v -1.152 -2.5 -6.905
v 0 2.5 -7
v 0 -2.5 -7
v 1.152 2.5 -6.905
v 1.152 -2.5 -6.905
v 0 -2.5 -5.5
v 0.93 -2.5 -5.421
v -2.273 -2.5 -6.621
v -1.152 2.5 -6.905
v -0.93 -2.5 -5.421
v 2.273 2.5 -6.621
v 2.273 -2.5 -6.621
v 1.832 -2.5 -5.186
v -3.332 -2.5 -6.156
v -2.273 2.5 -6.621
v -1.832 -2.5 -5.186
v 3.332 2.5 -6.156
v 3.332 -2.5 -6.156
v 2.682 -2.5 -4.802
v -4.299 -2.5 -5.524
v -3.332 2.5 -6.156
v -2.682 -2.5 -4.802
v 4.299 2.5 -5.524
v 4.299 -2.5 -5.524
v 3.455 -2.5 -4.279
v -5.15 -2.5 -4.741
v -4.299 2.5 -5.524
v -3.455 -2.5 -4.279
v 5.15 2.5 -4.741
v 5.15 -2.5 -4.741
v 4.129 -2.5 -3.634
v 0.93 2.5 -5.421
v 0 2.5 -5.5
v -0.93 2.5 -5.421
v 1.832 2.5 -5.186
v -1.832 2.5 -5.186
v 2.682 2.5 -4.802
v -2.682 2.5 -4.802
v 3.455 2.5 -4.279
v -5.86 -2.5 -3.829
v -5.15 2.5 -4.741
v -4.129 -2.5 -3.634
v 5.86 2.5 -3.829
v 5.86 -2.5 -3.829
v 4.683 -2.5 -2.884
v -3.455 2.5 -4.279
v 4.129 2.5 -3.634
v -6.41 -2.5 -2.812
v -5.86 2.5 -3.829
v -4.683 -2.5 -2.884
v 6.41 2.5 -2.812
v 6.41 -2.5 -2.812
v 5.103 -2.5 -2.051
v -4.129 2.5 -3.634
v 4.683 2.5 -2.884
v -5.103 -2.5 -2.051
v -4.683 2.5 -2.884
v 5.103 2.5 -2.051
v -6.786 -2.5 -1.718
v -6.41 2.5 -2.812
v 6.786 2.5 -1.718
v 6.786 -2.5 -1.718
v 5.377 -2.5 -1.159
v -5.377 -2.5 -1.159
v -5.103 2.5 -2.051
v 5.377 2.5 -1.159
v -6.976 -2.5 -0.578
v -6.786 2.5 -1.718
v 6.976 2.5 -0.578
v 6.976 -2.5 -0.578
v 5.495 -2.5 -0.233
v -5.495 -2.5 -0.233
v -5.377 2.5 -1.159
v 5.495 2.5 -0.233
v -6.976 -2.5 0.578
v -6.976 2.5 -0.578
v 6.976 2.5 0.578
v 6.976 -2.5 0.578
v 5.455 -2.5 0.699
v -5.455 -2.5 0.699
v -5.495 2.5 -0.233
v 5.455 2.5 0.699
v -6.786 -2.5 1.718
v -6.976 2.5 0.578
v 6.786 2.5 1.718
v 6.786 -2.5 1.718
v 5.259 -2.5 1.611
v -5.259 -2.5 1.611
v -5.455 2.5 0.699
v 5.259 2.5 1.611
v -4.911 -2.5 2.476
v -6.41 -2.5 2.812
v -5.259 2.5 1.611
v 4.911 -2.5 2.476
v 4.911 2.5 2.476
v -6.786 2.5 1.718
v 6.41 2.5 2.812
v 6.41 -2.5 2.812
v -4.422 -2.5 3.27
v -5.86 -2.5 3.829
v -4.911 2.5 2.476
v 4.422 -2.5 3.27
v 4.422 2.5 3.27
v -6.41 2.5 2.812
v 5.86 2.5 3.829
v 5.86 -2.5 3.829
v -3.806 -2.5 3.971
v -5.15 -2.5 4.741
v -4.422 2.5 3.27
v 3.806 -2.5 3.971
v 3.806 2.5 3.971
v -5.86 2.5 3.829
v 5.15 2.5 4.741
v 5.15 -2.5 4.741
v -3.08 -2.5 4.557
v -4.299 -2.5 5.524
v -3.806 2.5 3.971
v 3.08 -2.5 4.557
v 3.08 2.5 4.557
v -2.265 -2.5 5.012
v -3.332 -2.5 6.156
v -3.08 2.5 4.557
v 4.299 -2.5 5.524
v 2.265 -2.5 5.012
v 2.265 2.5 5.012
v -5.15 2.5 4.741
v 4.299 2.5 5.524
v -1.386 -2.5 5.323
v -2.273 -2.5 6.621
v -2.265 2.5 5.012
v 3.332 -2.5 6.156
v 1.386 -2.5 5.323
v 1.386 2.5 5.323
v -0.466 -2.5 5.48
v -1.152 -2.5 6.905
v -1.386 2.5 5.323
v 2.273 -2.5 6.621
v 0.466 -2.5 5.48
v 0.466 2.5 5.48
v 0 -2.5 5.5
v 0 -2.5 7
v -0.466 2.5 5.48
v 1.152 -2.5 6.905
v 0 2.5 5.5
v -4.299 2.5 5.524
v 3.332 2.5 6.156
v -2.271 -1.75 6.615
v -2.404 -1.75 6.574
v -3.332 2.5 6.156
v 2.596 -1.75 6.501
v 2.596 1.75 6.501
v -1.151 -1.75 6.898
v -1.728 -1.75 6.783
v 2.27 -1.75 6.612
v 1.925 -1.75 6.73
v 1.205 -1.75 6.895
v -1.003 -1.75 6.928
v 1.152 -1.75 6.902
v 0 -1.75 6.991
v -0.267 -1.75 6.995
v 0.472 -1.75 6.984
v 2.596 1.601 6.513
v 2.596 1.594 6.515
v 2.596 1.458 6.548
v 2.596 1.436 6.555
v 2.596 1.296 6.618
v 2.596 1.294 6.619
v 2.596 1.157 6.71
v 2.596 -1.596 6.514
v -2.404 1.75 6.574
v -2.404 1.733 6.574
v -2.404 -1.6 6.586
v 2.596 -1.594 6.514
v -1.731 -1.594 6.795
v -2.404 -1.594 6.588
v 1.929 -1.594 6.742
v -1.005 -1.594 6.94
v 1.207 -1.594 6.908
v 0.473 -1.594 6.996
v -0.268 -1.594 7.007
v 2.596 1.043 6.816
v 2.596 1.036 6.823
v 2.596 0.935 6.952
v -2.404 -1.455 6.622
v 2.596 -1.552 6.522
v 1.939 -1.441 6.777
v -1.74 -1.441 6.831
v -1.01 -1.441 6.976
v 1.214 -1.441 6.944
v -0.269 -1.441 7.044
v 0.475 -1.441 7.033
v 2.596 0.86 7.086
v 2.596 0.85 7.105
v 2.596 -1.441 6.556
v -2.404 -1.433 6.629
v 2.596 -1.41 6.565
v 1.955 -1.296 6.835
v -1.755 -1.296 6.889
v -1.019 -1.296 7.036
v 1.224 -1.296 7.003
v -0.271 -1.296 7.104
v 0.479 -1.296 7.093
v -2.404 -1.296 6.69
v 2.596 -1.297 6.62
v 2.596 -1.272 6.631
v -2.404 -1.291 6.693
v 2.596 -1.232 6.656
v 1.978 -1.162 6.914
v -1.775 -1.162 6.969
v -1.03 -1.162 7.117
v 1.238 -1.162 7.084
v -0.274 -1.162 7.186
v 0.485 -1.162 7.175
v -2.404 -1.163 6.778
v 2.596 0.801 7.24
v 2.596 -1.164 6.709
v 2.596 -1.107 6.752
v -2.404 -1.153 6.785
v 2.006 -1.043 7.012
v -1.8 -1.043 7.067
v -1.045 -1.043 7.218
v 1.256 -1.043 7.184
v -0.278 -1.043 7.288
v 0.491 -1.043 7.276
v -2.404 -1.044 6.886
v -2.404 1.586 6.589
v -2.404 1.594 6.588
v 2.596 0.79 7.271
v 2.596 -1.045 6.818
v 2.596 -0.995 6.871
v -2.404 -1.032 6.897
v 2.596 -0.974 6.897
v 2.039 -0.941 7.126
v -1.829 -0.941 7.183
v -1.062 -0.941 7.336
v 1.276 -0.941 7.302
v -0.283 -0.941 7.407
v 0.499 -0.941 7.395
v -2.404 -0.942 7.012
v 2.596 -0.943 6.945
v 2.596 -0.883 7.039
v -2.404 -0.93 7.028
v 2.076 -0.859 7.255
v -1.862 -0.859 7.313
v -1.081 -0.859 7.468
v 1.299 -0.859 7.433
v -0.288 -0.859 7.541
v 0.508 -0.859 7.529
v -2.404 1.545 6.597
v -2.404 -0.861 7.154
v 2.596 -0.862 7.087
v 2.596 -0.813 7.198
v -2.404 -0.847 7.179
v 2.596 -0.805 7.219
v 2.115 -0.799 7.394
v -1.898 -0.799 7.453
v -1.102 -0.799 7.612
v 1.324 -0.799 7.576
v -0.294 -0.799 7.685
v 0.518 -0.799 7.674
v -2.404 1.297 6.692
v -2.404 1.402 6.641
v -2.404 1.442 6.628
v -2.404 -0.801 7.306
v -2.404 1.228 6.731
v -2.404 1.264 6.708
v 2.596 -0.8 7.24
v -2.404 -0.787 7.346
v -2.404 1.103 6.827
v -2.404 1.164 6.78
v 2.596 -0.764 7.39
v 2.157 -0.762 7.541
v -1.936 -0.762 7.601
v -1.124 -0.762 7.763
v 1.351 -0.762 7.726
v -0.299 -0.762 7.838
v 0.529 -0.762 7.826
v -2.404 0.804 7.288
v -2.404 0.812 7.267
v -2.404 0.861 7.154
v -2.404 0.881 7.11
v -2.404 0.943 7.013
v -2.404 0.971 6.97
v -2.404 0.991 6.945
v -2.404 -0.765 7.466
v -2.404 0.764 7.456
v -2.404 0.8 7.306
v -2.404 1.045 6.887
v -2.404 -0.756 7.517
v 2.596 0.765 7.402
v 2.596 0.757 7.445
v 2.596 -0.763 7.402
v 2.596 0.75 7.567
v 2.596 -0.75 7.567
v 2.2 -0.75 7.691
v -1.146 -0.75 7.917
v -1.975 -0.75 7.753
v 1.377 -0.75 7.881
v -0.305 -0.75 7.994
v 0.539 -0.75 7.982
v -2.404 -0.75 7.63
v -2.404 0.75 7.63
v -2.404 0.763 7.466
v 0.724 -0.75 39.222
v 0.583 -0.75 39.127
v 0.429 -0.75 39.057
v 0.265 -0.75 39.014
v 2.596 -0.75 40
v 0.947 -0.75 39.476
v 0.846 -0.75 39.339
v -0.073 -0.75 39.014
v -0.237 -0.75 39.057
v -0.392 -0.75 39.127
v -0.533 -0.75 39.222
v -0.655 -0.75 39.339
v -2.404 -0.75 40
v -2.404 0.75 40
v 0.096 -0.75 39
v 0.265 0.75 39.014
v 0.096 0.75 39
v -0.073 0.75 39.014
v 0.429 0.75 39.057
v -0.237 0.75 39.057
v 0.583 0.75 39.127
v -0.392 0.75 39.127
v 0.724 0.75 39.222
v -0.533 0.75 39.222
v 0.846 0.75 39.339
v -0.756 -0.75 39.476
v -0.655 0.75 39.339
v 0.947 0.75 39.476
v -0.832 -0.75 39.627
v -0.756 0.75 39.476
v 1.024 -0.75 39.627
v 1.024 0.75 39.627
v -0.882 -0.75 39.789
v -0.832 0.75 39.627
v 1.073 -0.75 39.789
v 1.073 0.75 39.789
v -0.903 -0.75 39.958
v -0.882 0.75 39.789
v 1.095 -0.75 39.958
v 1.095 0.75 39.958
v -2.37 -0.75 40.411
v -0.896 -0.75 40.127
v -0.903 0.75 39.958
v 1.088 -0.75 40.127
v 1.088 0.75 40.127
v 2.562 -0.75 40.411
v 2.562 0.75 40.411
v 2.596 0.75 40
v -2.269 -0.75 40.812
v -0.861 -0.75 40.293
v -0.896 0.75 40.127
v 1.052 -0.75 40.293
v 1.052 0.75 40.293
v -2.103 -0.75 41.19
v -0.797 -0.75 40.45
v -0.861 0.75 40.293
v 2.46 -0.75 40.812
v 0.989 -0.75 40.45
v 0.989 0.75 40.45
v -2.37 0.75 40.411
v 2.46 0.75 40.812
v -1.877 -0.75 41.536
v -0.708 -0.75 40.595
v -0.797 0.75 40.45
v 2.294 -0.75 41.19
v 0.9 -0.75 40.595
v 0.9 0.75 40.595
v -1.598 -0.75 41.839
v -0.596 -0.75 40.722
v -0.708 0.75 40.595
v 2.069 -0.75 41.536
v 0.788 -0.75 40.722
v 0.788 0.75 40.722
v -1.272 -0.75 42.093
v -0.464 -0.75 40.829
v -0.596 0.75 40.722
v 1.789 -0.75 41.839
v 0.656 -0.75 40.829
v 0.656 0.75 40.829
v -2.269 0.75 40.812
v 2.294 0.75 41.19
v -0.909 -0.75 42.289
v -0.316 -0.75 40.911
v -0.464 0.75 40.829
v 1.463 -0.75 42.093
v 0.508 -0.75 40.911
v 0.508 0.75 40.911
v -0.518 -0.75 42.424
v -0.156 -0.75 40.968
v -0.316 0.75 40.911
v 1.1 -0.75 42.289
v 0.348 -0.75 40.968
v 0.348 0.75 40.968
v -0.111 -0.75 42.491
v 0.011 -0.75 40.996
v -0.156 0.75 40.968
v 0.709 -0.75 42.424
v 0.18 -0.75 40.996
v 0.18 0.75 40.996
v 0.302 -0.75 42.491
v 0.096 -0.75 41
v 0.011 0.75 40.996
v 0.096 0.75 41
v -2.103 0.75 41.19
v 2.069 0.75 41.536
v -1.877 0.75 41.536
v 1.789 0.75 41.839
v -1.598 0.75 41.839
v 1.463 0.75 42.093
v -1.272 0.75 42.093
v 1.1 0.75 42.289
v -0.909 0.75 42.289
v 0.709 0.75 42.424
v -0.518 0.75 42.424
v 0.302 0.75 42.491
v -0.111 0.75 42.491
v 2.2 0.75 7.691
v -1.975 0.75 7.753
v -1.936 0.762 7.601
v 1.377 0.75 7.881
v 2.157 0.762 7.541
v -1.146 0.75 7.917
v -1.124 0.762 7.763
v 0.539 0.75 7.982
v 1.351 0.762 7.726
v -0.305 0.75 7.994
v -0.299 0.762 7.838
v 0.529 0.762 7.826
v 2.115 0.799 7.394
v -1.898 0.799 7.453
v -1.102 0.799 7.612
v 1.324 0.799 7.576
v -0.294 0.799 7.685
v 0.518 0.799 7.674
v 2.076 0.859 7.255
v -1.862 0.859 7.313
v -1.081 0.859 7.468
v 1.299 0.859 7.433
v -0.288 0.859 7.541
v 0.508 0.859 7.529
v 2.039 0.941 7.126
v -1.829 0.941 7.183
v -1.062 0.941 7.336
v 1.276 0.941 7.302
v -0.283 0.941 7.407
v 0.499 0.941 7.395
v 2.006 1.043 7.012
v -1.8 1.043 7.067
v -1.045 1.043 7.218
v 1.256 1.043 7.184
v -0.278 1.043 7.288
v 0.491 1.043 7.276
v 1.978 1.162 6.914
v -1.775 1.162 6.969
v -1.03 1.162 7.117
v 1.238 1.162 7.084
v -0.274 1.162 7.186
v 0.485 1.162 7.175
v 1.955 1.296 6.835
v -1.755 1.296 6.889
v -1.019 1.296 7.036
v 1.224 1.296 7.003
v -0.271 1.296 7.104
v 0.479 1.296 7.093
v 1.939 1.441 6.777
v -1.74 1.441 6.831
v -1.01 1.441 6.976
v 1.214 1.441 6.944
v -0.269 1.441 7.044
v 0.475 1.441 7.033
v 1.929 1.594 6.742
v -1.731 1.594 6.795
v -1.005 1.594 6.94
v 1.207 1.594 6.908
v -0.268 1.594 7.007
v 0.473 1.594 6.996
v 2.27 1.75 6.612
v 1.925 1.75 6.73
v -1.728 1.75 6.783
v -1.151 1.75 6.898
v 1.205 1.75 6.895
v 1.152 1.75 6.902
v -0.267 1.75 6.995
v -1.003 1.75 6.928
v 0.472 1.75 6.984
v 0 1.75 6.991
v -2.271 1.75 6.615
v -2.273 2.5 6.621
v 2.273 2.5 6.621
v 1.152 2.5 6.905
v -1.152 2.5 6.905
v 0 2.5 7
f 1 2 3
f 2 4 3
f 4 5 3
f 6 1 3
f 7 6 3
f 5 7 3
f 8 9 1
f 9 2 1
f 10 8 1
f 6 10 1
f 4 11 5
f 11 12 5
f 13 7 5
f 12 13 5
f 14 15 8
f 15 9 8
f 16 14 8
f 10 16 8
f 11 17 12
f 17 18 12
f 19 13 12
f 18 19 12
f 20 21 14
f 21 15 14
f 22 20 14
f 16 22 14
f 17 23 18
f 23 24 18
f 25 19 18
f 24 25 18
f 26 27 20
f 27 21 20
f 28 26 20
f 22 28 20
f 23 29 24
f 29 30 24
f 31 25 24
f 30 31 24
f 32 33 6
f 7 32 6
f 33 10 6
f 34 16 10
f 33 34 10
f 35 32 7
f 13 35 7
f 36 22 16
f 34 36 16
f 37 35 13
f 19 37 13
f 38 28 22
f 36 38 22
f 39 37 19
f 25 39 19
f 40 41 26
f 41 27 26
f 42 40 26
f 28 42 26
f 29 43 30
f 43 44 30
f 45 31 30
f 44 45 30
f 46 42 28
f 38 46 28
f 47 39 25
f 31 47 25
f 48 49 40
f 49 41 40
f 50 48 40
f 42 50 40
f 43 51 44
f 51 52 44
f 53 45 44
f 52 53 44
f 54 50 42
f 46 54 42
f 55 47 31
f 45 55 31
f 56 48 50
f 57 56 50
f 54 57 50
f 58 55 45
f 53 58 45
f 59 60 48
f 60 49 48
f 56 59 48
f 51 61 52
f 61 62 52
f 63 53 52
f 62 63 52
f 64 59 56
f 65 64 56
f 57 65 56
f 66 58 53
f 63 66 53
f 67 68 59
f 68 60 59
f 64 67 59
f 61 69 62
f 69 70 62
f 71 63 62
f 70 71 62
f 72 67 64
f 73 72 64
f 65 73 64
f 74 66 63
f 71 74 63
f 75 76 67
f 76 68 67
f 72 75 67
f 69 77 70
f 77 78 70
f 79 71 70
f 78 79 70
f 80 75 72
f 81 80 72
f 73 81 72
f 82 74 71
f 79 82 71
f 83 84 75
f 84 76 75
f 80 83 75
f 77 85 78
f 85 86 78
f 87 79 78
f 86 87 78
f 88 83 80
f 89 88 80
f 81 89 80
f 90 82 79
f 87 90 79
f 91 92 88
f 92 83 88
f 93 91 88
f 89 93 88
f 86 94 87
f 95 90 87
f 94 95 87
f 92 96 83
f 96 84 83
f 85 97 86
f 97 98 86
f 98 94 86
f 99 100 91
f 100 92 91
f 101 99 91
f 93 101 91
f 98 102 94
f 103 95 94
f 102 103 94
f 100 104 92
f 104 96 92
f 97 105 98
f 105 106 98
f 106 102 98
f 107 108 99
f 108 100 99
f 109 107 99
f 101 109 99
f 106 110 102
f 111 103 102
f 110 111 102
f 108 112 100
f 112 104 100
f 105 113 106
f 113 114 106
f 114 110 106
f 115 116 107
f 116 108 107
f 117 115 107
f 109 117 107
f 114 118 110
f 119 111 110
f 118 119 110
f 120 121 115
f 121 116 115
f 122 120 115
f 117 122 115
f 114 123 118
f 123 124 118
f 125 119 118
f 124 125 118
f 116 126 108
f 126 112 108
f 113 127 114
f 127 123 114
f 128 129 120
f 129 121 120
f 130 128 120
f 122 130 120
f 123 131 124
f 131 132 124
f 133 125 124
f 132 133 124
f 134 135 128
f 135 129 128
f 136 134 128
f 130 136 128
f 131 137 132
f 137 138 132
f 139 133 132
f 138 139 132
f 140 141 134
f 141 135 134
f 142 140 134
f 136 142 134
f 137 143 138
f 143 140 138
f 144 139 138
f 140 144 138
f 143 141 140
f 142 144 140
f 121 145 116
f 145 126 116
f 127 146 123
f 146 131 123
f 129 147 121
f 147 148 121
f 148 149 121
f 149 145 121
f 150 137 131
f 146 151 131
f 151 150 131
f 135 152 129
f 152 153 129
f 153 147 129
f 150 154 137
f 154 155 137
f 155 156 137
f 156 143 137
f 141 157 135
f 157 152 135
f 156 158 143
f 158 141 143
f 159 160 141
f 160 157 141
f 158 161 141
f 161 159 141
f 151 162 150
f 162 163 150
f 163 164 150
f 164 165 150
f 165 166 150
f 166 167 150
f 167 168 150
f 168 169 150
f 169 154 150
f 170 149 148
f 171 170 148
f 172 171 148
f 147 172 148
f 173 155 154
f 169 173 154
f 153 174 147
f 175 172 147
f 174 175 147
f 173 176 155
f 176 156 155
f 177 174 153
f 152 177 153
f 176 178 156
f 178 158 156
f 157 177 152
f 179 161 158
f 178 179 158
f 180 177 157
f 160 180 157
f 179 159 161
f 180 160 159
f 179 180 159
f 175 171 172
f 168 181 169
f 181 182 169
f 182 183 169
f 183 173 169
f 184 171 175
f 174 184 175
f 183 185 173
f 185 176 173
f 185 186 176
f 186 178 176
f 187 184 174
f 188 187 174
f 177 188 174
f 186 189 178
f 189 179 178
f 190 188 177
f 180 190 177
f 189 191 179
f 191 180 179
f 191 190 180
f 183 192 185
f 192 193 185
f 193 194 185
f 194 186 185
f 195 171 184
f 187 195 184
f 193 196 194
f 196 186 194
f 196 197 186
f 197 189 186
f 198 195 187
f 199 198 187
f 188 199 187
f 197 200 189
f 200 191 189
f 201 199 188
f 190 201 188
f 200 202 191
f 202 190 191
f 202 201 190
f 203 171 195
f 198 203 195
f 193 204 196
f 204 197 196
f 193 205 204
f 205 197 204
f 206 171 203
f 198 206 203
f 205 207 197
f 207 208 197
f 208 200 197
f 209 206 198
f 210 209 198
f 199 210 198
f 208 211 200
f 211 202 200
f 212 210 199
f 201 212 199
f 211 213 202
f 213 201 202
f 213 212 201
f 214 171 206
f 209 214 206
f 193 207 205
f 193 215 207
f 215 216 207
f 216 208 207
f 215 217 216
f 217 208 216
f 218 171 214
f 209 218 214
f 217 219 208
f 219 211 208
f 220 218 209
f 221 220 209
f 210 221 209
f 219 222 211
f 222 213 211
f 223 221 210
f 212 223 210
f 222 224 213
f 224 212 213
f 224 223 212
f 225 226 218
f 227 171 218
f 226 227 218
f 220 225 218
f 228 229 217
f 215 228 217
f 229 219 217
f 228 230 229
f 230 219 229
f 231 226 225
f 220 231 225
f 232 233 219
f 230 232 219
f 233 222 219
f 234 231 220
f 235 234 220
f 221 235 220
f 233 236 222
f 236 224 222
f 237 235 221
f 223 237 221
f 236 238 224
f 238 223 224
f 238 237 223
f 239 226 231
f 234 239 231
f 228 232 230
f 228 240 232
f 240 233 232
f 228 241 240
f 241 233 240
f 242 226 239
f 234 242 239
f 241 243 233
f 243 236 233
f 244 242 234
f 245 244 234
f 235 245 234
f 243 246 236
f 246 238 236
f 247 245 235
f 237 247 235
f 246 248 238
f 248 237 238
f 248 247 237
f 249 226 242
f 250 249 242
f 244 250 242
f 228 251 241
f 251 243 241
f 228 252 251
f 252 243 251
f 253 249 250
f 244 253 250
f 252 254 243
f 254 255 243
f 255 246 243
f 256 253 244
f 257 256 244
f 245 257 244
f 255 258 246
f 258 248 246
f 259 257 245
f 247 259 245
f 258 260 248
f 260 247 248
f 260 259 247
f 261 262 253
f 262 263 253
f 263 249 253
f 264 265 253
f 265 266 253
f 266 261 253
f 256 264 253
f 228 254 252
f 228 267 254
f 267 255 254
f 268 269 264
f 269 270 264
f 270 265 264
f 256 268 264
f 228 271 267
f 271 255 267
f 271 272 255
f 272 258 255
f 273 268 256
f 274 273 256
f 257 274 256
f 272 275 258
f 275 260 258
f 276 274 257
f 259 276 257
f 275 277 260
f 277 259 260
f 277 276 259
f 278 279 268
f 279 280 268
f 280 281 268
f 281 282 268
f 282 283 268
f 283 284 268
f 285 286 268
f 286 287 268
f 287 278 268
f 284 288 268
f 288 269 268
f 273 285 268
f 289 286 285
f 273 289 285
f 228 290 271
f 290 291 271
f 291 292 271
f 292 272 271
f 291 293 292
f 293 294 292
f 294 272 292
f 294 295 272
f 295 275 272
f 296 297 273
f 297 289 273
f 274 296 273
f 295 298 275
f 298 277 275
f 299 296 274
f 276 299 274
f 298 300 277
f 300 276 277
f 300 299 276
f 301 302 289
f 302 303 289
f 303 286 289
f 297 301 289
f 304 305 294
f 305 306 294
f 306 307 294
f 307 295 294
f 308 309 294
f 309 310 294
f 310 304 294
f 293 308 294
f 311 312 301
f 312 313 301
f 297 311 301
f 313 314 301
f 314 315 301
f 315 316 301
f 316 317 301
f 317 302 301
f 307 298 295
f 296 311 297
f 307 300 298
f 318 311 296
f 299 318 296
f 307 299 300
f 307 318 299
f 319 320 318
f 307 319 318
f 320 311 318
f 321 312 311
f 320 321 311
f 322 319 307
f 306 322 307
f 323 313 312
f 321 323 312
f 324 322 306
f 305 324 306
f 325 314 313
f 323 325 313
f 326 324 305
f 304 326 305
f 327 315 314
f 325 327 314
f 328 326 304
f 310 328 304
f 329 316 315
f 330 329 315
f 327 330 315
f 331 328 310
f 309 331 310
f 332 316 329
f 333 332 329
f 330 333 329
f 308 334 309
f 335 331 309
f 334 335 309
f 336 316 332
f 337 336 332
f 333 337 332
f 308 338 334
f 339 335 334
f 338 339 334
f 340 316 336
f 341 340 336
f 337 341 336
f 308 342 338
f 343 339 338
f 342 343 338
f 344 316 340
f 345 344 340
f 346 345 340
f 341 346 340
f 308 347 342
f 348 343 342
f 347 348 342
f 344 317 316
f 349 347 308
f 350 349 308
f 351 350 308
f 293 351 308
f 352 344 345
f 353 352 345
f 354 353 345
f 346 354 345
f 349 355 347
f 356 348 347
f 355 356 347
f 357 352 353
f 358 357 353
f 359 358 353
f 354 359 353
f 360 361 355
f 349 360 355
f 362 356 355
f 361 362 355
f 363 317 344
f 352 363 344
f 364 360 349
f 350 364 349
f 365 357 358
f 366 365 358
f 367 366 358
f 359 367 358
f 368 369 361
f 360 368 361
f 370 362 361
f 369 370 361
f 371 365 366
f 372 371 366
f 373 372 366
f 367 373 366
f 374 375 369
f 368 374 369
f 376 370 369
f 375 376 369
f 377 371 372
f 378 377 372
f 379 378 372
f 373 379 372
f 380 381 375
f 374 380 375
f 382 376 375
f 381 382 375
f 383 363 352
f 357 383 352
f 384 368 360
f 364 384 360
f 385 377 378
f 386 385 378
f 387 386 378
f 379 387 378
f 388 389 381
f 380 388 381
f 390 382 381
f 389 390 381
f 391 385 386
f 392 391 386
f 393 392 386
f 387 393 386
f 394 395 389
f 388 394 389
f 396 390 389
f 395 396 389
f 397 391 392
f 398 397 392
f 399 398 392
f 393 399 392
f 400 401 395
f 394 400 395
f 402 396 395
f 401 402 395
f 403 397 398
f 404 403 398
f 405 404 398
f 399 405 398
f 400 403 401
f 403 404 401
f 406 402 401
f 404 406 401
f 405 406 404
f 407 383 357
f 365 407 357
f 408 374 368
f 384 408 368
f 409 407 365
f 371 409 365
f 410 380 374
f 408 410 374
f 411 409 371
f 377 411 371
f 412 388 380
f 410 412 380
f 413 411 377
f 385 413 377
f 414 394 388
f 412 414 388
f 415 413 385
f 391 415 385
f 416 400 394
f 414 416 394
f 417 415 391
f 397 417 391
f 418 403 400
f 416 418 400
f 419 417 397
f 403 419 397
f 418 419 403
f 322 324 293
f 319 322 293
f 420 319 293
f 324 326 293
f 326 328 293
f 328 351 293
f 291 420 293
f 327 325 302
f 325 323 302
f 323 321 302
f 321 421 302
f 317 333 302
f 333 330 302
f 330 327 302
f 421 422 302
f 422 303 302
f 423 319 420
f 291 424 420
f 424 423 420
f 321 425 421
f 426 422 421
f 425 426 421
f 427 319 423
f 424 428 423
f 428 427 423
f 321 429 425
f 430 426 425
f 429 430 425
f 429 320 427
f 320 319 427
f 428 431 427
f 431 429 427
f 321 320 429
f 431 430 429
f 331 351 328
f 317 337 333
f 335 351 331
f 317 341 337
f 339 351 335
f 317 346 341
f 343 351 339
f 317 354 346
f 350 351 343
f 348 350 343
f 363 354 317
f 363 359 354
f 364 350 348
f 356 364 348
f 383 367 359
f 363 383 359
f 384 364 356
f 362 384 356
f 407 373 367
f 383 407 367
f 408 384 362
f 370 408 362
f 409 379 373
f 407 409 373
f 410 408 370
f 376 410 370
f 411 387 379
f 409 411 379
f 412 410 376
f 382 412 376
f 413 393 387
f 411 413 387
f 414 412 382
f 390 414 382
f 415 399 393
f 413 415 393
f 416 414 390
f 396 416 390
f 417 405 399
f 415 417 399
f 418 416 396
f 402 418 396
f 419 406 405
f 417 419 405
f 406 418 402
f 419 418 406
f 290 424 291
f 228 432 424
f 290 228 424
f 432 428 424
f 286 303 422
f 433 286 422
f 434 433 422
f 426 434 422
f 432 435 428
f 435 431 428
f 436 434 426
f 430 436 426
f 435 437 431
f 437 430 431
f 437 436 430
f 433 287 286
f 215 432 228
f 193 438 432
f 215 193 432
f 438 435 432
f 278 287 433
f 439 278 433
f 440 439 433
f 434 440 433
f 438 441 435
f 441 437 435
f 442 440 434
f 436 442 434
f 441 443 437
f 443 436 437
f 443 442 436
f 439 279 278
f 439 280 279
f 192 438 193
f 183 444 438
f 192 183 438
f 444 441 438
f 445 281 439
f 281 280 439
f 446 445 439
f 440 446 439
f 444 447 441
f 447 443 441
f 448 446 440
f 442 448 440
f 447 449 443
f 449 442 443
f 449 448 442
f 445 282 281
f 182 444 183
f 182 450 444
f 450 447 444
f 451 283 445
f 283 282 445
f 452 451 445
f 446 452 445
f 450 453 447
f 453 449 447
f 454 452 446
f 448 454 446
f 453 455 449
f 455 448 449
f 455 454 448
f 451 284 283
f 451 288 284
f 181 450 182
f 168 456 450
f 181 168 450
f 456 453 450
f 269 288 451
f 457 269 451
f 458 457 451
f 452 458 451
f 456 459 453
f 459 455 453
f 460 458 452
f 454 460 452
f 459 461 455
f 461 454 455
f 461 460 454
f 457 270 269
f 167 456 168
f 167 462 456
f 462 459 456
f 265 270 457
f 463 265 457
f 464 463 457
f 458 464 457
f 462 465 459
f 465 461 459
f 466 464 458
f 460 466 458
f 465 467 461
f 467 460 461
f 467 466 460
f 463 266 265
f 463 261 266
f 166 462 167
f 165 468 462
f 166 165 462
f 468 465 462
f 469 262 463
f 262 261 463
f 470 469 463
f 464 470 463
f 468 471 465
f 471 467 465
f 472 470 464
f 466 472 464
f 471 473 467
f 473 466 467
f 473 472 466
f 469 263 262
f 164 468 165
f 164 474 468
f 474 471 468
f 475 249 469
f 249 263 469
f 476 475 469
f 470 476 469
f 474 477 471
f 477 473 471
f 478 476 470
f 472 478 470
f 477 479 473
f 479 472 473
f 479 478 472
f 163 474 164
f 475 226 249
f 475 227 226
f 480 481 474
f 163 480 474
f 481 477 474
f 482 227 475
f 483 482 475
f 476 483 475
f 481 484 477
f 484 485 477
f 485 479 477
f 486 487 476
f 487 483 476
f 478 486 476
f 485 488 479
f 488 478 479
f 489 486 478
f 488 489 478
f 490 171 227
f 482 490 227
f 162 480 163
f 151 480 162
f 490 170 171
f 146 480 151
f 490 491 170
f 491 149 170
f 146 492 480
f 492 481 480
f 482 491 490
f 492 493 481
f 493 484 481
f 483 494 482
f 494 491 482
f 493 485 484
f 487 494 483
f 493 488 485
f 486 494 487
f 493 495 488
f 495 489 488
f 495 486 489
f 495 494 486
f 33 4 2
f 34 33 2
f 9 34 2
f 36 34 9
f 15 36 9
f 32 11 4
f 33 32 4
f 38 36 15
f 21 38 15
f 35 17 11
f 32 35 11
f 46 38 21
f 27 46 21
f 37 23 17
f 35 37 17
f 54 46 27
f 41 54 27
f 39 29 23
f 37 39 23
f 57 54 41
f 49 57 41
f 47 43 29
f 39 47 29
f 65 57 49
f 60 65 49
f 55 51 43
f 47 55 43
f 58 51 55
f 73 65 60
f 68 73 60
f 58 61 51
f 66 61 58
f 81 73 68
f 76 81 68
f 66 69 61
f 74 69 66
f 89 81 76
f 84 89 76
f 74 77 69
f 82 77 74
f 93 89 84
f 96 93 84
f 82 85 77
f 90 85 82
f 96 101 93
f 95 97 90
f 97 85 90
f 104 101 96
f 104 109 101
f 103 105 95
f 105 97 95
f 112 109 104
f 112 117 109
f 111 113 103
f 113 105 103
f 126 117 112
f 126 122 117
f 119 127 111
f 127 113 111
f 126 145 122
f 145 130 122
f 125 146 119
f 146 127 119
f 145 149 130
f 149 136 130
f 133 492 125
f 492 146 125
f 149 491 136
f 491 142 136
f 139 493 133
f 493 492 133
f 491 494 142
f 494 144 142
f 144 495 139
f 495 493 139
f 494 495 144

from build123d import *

# Parameters (mm, degrees)
SKETCH1_R           = 7
SKETCH1_R_2         = 5.5
BOSS_EXTRUDE1_DEPTH = 2.5
SKETCH2_R           = 1
BOSS_EXTRUDE2_DEPTH = 0.75
FILLET1_R           = 1


with BuildPart() as part:
    # Sketch1 → Boss-Extrude1 (new, symmetric)
    with BuildSketch(Plane(origin=(0, 0, 0), x_dir=(1, 0, 0), z_dir=(0, 1, 0))):
        with Locations(Location((0, 0, 0), (0, 0, 270))):
            Circle(SKETCH1_R)
        with Locations(Location((0, 0, 0), (0, 0, 270))):
            Circle(SKETCH1_R_2, mode=Mode.SUBTRACT)
    extrude(amount=BOSS_EXTRUDE1_DEPTH, both=True)

    # Sketch2 → Boss-Extrude2 (add, symmetric)
    with BuildSketch(Plane(origin=(0, 0, 0), x_dir=(1, 0, 0), z_dir=(0, 1, 0))):
        with BuildLine():
            Line((2.595653006, -40), (2.595653006, -6.500968041))
            ThreePointArc((2.595653006, -6.500968041), (0.102408357, -6.999250855), (-2.404346994, -6.574124697))
            Line((-2.404346994, -6.574124697), (-2.404346994, -40))
            ThreePointArc((-2.404346994, -40), (0.095653006, -42.5), (2.595653006, -40))
        make_face()
        with Locations(Location((0.095653006, -40, 0), (0, 0, 270))):
            Circle(SKETCH2_R, mode=Mode.SUBTRACT)
    extrude(amount=BOSS_EXTRUDE2_DEPTH, both=True)

    # Fillet1
    fillet1_edges = [part.edges().sort_by_distance(p)[0] for p in [
        (1.321594437, 0.75, 6.874109989),
        (1.321594437, -0.75, 6.874109989),
    ]]
    fillet(fillet1_edges, radius=FILLET1_R)


solid = part.part
